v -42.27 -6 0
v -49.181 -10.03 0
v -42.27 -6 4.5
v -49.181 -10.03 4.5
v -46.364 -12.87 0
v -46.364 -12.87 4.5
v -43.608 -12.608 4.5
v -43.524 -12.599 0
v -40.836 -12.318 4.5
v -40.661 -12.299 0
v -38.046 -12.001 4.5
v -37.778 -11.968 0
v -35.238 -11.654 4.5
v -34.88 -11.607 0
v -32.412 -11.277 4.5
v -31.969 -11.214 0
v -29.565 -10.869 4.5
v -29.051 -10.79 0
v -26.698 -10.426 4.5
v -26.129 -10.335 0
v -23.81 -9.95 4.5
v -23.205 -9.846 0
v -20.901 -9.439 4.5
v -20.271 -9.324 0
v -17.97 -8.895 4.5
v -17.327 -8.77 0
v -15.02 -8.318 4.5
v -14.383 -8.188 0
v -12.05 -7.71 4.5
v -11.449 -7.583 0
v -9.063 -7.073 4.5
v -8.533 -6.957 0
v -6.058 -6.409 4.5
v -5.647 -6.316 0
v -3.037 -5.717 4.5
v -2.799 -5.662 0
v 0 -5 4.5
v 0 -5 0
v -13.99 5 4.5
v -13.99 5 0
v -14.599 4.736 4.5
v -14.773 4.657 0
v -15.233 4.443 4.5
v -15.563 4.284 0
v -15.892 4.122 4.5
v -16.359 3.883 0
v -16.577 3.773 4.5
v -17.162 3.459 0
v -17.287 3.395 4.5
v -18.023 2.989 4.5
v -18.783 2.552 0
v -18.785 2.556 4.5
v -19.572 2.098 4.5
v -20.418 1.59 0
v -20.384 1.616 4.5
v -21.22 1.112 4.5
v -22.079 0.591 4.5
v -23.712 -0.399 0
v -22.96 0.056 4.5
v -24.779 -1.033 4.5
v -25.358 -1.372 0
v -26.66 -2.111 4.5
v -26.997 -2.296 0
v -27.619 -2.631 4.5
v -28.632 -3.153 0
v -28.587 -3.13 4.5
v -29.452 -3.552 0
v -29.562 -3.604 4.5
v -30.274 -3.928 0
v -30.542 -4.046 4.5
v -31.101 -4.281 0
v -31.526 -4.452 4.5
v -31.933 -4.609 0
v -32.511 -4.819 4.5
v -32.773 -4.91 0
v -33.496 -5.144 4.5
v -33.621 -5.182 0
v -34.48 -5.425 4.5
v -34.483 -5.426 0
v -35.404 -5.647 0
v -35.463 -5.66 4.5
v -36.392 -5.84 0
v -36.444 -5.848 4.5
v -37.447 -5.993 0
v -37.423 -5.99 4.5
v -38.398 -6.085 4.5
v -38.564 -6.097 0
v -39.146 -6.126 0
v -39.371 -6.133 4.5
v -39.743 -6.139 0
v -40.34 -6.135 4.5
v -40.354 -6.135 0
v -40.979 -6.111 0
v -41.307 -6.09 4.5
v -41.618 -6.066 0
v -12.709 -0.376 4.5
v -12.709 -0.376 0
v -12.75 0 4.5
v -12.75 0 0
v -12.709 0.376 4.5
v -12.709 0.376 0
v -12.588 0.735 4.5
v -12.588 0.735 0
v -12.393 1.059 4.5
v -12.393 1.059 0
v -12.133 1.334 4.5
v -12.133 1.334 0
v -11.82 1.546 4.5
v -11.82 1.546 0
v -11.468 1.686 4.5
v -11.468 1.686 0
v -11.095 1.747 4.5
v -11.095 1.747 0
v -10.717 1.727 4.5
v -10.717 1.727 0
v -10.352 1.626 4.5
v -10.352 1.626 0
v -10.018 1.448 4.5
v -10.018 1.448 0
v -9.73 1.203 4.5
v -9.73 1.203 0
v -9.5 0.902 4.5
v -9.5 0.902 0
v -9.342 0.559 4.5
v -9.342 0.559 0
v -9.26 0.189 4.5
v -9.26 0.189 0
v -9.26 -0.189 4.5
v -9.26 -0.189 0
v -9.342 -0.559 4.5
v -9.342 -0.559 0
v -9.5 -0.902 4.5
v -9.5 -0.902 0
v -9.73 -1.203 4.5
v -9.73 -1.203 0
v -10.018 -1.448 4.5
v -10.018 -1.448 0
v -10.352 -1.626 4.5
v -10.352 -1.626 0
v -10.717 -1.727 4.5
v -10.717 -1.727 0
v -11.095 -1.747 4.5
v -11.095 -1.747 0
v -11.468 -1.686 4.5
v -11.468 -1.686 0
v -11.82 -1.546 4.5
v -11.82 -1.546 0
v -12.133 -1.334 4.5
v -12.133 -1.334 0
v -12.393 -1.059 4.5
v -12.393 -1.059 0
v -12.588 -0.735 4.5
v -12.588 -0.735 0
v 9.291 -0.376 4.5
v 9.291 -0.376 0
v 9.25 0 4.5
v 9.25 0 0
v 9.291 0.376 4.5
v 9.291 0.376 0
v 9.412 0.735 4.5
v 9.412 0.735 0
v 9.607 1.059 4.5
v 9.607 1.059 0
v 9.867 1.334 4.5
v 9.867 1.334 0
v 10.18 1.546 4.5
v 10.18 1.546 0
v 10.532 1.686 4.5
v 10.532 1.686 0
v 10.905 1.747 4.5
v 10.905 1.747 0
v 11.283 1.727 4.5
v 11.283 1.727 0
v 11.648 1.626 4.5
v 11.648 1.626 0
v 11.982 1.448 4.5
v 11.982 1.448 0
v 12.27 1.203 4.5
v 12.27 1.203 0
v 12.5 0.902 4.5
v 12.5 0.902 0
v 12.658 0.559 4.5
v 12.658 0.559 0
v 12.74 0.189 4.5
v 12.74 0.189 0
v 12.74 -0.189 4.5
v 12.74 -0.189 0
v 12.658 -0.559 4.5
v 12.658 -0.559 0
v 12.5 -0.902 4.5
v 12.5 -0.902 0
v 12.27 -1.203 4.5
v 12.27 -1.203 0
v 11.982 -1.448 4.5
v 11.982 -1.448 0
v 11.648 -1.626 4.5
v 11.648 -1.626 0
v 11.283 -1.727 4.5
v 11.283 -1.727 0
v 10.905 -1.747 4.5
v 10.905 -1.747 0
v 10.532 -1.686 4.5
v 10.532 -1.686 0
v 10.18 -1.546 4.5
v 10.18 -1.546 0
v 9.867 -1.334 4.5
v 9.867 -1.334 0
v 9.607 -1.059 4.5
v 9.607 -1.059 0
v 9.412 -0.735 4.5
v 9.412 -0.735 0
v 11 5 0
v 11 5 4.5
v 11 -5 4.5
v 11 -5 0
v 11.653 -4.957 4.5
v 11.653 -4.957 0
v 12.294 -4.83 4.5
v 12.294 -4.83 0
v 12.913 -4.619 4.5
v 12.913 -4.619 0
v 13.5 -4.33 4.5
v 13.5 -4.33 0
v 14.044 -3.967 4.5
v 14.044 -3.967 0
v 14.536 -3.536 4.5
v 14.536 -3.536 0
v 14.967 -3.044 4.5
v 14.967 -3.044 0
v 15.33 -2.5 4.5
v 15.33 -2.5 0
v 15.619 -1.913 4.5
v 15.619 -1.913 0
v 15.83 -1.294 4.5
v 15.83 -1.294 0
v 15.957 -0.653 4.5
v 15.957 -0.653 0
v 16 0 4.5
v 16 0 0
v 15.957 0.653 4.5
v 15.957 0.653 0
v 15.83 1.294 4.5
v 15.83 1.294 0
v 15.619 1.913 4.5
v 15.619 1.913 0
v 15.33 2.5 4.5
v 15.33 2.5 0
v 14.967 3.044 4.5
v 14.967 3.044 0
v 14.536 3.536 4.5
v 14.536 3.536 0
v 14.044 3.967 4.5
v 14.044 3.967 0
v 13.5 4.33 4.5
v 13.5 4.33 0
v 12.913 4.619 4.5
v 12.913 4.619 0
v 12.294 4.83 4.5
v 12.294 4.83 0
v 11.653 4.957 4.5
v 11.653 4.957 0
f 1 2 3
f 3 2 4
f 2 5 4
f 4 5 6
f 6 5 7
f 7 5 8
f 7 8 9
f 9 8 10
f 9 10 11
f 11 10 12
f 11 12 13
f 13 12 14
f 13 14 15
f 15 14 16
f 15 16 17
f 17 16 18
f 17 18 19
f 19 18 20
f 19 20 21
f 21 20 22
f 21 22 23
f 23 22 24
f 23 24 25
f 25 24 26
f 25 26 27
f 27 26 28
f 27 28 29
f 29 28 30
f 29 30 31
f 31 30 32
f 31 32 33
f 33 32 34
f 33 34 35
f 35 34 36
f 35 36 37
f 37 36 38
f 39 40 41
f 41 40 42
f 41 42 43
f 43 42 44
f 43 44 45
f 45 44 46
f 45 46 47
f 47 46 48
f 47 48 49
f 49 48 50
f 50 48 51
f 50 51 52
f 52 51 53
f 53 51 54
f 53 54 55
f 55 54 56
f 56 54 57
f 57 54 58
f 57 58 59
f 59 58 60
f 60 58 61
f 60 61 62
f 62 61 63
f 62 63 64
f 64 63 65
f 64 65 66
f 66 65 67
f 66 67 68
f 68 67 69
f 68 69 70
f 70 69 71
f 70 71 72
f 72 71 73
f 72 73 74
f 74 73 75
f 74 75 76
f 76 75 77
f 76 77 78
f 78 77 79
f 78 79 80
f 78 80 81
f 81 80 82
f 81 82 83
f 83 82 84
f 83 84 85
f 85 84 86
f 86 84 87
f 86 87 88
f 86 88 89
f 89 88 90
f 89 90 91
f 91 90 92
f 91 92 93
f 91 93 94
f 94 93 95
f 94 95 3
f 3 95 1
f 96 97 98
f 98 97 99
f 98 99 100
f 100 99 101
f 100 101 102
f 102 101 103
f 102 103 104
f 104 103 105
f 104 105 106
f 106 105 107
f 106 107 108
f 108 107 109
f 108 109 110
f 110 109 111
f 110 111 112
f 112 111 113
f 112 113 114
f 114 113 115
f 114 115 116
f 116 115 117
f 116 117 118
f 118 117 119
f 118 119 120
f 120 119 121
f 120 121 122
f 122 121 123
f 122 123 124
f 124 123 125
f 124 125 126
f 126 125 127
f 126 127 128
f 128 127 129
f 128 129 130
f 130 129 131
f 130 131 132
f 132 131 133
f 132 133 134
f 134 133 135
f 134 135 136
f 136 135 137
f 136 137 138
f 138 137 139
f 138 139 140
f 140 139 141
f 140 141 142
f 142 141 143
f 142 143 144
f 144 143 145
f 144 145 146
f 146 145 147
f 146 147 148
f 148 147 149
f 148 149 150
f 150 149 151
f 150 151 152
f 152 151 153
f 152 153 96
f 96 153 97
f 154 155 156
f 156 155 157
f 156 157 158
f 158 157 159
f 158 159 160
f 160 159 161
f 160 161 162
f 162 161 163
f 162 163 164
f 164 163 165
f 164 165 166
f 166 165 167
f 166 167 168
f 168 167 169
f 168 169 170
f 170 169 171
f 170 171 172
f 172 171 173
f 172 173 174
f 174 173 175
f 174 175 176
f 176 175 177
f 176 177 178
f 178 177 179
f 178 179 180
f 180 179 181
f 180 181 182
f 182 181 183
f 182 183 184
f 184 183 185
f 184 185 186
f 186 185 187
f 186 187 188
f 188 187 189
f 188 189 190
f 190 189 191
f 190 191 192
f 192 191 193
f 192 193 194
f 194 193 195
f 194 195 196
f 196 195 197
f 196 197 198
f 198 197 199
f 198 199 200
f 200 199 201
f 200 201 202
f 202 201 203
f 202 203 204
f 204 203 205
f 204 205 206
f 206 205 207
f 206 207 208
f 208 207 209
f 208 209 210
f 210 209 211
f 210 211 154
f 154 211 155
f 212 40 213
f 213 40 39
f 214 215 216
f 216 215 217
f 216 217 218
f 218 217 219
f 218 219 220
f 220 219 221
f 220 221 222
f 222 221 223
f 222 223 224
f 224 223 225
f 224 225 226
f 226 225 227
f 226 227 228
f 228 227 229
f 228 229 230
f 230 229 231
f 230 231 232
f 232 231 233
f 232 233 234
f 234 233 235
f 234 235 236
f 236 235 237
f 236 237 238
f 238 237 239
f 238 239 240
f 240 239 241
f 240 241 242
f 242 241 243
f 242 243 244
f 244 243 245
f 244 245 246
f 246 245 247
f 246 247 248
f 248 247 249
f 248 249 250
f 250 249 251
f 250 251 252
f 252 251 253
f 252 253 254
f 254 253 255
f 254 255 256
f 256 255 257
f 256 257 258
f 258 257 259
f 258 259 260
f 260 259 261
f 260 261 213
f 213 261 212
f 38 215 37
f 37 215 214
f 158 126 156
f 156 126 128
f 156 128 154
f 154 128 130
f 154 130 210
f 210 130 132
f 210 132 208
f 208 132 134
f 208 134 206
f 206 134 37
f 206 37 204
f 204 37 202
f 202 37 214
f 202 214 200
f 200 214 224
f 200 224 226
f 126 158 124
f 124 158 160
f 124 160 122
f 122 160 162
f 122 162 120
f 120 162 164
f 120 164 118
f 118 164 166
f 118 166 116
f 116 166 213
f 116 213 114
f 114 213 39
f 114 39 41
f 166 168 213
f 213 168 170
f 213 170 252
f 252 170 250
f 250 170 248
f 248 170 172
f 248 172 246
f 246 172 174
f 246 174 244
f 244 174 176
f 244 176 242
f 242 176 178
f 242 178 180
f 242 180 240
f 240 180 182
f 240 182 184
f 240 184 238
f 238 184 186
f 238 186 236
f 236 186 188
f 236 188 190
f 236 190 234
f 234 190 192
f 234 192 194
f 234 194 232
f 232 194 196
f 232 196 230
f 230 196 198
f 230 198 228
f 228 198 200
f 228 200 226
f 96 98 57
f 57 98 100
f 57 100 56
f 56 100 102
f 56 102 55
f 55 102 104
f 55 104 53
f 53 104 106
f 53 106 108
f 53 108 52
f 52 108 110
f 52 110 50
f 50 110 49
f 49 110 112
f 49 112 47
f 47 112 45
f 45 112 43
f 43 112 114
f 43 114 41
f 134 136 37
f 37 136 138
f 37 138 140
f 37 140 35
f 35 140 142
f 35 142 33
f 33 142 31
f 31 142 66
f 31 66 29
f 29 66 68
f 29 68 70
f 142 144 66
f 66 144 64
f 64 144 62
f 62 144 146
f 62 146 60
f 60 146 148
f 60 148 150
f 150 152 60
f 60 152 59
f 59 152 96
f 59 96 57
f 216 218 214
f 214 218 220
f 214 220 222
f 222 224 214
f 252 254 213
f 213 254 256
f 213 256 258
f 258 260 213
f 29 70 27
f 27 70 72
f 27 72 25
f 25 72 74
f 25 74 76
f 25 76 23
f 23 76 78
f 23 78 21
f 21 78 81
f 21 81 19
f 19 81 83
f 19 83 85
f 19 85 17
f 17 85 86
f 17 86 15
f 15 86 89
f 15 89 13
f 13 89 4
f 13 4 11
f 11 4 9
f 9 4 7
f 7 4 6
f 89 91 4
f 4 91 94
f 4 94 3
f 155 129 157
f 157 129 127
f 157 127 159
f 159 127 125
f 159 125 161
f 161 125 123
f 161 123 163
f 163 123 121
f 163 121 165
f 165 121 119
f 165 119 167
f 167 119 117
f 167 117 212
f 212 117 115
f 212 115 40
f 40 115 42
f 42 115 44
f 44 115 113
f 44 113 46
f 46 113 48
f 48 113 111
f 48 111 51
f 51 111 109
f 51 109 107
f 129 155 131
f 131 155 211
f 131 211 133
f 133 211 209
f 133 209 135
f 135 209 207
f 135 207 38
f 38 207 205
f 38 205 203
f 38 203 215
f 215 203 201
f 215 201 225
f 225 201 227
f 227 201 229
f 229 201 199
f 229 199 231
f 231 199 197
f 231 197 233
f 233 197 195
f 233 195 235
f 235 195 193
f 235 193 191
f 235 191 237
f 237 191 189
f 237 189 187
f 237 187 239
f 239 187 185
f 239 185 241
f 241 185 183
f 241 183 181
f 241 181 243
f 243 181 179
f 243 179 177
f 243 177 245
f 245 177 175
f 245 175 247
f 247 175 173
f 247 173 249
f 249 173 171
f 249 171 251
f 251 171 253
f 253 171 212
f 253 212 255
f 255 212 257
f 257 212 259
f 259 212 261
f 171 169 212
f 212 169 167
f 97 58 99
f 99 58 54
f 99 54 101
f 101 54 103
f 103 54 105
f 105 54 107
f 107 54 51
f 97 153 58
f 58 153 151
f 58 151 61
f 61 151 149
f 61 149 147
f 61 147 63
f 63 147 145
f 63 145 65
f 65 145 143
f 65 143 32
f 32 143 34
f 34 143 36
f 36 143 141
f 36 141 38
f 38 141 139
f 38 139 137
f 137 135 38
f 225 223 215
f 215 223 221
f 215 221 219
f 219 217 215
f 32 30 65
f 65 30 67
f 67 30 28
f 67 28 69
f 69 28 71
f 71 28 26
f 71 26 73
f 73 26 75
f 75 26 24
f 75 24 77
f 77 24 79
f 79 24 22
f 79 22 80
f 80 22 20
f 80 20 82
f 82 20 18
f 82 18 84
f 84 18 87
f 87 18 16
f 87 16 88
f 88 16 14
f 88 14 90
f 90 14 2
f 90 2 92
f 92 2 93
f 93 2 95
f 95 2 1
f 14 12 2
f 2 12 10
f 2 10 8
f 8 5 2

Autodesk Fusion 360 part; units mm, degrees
sketch "Sketch1" plane through (0, 0, 0) normal (0, 0, 1) x (1, 0, 0)
  line L0 (-11, 0) -> (11, 0) construction
  circle A0 centre (-11, 0) radius 1.75
  circle A1 centre (-11, 0) radius 5
  circle A2 centre (11, 0) radius 1.75
  circle A3 centre (11, 0) radius 5
  line L1 (-11, 5) -> (11, 5)
  line L2 (11, -5) -> (-11, -5)
  dimension "d1" = 22
  dimension "d2" = 3.5
  dimension "d3" = 10
  dimension "d4" = 3.5
  dimension "d5" = 10
extrude "Extrude1" add sketch "Sketch1" along normal blind 4.5
sketch "Sketch2" plane through (0, 0, 4.5) normal (0, 0, 1) x (-1, 0, 0)
  circle A0 centre (-11, 0) radius 1.75
  circle A1 centre (11, 0) radius 1.75
  arc A2 (11, -5) -> (11, 5) centre (11, 0) ccw
  line L0 (11, 5) -> (-11, 5)
  arc A3 (-11, 5) -> (-11, -5) centre (-11, 0) ccw
  line L1 (-11, -5) -> (11, -5)
  line L2 (46.364, 12.87) -> (49.1808, 10.03)
  line L3 (49.1808, 10.03) -> (42.27, 6)
  line L4 (11, 0) -> (11, -5) construction
  spline S0 degree 5 poles (42.27, 6) (41.8597, 6.0483) (41.0377, 6.1242) (39.8004, 6.1754) (38.142, 6.1176) (36.0551, 5.832) (33.9568, 5.3324) (31.8528, 4.6259) (29.753, 3.7318) (27.6735, 2.6889) (25.6346, 1.5499) (23.6581, 0.3731) (21.7651, -0.7836) (19.9739, -1.8698) (18.2958, -2.85) (16.7347, -3.707) (15.5794, -4.2889) (14.7647, -4.667) (14.2444, -4.8933) (13.99, -5) knots 0 0 0 0 0 0 0.066667 0.133333 0.2 0.266667 0.333333 0.4 0.466667 0.533333 0.6 0.666667 0.733333 0.8 0.866667 0.933333 1 1 1 1 1 1
  line L5 (0, 0) -> (0, 5) construction
  spline S1 degree 5 poles (46.364, 12.87) (45.4848, 12.7904) (43.7223, 12.6243) (41.0656, 12.3544) (37.4975, 11.9526) (32.991, 11.3756) (28.4344, 10.7175) (23.8239, 9.9723) (19.158, 9.1377) (14.4396, 8.2182) (9.6729, 7.2207) (5.8243, 6.3656) (2.9193, 5.6943) (0.9744, 5.2336) (0, 5) knots 0 0 0 0 0 0 0.1 0.2 0.3 0.4 0.5 0.6 0.7 0.8 0.9 1 1 1 1 1 1
  line L6 (11, 0) -> (11, 5) construction
  line L7 (0, 5) -> (11, 5)
  line L8 (13.99, -5) -> (11, -5)
  point P0 (31.52, 4.45)
  point P1 (20.61, -1.48)
  point P2 (24.52, 10.07)
  dimension "d10" = 4
  dimension "d11" = 8
  dimension "d12" = 31.27
  dimension "d13" = 11
  dimension "d14" = 15.03
  dimension "d15" = 17.87
  dimension "d16" = 9.45
  dimension "d17" = 3.52
  dimension "d18" = 2.99
  dimension "d19" = 9.61
  dimension "d20" = 20.52
  dimension "d21" = 13.52
  dimension "d22" = 15.07
extrude "Extrude2" add sketch "Sketch2" against normal up to surface (4.5 mm away) contours A2 L0 L2 L3 S0 S1 L7 L8
